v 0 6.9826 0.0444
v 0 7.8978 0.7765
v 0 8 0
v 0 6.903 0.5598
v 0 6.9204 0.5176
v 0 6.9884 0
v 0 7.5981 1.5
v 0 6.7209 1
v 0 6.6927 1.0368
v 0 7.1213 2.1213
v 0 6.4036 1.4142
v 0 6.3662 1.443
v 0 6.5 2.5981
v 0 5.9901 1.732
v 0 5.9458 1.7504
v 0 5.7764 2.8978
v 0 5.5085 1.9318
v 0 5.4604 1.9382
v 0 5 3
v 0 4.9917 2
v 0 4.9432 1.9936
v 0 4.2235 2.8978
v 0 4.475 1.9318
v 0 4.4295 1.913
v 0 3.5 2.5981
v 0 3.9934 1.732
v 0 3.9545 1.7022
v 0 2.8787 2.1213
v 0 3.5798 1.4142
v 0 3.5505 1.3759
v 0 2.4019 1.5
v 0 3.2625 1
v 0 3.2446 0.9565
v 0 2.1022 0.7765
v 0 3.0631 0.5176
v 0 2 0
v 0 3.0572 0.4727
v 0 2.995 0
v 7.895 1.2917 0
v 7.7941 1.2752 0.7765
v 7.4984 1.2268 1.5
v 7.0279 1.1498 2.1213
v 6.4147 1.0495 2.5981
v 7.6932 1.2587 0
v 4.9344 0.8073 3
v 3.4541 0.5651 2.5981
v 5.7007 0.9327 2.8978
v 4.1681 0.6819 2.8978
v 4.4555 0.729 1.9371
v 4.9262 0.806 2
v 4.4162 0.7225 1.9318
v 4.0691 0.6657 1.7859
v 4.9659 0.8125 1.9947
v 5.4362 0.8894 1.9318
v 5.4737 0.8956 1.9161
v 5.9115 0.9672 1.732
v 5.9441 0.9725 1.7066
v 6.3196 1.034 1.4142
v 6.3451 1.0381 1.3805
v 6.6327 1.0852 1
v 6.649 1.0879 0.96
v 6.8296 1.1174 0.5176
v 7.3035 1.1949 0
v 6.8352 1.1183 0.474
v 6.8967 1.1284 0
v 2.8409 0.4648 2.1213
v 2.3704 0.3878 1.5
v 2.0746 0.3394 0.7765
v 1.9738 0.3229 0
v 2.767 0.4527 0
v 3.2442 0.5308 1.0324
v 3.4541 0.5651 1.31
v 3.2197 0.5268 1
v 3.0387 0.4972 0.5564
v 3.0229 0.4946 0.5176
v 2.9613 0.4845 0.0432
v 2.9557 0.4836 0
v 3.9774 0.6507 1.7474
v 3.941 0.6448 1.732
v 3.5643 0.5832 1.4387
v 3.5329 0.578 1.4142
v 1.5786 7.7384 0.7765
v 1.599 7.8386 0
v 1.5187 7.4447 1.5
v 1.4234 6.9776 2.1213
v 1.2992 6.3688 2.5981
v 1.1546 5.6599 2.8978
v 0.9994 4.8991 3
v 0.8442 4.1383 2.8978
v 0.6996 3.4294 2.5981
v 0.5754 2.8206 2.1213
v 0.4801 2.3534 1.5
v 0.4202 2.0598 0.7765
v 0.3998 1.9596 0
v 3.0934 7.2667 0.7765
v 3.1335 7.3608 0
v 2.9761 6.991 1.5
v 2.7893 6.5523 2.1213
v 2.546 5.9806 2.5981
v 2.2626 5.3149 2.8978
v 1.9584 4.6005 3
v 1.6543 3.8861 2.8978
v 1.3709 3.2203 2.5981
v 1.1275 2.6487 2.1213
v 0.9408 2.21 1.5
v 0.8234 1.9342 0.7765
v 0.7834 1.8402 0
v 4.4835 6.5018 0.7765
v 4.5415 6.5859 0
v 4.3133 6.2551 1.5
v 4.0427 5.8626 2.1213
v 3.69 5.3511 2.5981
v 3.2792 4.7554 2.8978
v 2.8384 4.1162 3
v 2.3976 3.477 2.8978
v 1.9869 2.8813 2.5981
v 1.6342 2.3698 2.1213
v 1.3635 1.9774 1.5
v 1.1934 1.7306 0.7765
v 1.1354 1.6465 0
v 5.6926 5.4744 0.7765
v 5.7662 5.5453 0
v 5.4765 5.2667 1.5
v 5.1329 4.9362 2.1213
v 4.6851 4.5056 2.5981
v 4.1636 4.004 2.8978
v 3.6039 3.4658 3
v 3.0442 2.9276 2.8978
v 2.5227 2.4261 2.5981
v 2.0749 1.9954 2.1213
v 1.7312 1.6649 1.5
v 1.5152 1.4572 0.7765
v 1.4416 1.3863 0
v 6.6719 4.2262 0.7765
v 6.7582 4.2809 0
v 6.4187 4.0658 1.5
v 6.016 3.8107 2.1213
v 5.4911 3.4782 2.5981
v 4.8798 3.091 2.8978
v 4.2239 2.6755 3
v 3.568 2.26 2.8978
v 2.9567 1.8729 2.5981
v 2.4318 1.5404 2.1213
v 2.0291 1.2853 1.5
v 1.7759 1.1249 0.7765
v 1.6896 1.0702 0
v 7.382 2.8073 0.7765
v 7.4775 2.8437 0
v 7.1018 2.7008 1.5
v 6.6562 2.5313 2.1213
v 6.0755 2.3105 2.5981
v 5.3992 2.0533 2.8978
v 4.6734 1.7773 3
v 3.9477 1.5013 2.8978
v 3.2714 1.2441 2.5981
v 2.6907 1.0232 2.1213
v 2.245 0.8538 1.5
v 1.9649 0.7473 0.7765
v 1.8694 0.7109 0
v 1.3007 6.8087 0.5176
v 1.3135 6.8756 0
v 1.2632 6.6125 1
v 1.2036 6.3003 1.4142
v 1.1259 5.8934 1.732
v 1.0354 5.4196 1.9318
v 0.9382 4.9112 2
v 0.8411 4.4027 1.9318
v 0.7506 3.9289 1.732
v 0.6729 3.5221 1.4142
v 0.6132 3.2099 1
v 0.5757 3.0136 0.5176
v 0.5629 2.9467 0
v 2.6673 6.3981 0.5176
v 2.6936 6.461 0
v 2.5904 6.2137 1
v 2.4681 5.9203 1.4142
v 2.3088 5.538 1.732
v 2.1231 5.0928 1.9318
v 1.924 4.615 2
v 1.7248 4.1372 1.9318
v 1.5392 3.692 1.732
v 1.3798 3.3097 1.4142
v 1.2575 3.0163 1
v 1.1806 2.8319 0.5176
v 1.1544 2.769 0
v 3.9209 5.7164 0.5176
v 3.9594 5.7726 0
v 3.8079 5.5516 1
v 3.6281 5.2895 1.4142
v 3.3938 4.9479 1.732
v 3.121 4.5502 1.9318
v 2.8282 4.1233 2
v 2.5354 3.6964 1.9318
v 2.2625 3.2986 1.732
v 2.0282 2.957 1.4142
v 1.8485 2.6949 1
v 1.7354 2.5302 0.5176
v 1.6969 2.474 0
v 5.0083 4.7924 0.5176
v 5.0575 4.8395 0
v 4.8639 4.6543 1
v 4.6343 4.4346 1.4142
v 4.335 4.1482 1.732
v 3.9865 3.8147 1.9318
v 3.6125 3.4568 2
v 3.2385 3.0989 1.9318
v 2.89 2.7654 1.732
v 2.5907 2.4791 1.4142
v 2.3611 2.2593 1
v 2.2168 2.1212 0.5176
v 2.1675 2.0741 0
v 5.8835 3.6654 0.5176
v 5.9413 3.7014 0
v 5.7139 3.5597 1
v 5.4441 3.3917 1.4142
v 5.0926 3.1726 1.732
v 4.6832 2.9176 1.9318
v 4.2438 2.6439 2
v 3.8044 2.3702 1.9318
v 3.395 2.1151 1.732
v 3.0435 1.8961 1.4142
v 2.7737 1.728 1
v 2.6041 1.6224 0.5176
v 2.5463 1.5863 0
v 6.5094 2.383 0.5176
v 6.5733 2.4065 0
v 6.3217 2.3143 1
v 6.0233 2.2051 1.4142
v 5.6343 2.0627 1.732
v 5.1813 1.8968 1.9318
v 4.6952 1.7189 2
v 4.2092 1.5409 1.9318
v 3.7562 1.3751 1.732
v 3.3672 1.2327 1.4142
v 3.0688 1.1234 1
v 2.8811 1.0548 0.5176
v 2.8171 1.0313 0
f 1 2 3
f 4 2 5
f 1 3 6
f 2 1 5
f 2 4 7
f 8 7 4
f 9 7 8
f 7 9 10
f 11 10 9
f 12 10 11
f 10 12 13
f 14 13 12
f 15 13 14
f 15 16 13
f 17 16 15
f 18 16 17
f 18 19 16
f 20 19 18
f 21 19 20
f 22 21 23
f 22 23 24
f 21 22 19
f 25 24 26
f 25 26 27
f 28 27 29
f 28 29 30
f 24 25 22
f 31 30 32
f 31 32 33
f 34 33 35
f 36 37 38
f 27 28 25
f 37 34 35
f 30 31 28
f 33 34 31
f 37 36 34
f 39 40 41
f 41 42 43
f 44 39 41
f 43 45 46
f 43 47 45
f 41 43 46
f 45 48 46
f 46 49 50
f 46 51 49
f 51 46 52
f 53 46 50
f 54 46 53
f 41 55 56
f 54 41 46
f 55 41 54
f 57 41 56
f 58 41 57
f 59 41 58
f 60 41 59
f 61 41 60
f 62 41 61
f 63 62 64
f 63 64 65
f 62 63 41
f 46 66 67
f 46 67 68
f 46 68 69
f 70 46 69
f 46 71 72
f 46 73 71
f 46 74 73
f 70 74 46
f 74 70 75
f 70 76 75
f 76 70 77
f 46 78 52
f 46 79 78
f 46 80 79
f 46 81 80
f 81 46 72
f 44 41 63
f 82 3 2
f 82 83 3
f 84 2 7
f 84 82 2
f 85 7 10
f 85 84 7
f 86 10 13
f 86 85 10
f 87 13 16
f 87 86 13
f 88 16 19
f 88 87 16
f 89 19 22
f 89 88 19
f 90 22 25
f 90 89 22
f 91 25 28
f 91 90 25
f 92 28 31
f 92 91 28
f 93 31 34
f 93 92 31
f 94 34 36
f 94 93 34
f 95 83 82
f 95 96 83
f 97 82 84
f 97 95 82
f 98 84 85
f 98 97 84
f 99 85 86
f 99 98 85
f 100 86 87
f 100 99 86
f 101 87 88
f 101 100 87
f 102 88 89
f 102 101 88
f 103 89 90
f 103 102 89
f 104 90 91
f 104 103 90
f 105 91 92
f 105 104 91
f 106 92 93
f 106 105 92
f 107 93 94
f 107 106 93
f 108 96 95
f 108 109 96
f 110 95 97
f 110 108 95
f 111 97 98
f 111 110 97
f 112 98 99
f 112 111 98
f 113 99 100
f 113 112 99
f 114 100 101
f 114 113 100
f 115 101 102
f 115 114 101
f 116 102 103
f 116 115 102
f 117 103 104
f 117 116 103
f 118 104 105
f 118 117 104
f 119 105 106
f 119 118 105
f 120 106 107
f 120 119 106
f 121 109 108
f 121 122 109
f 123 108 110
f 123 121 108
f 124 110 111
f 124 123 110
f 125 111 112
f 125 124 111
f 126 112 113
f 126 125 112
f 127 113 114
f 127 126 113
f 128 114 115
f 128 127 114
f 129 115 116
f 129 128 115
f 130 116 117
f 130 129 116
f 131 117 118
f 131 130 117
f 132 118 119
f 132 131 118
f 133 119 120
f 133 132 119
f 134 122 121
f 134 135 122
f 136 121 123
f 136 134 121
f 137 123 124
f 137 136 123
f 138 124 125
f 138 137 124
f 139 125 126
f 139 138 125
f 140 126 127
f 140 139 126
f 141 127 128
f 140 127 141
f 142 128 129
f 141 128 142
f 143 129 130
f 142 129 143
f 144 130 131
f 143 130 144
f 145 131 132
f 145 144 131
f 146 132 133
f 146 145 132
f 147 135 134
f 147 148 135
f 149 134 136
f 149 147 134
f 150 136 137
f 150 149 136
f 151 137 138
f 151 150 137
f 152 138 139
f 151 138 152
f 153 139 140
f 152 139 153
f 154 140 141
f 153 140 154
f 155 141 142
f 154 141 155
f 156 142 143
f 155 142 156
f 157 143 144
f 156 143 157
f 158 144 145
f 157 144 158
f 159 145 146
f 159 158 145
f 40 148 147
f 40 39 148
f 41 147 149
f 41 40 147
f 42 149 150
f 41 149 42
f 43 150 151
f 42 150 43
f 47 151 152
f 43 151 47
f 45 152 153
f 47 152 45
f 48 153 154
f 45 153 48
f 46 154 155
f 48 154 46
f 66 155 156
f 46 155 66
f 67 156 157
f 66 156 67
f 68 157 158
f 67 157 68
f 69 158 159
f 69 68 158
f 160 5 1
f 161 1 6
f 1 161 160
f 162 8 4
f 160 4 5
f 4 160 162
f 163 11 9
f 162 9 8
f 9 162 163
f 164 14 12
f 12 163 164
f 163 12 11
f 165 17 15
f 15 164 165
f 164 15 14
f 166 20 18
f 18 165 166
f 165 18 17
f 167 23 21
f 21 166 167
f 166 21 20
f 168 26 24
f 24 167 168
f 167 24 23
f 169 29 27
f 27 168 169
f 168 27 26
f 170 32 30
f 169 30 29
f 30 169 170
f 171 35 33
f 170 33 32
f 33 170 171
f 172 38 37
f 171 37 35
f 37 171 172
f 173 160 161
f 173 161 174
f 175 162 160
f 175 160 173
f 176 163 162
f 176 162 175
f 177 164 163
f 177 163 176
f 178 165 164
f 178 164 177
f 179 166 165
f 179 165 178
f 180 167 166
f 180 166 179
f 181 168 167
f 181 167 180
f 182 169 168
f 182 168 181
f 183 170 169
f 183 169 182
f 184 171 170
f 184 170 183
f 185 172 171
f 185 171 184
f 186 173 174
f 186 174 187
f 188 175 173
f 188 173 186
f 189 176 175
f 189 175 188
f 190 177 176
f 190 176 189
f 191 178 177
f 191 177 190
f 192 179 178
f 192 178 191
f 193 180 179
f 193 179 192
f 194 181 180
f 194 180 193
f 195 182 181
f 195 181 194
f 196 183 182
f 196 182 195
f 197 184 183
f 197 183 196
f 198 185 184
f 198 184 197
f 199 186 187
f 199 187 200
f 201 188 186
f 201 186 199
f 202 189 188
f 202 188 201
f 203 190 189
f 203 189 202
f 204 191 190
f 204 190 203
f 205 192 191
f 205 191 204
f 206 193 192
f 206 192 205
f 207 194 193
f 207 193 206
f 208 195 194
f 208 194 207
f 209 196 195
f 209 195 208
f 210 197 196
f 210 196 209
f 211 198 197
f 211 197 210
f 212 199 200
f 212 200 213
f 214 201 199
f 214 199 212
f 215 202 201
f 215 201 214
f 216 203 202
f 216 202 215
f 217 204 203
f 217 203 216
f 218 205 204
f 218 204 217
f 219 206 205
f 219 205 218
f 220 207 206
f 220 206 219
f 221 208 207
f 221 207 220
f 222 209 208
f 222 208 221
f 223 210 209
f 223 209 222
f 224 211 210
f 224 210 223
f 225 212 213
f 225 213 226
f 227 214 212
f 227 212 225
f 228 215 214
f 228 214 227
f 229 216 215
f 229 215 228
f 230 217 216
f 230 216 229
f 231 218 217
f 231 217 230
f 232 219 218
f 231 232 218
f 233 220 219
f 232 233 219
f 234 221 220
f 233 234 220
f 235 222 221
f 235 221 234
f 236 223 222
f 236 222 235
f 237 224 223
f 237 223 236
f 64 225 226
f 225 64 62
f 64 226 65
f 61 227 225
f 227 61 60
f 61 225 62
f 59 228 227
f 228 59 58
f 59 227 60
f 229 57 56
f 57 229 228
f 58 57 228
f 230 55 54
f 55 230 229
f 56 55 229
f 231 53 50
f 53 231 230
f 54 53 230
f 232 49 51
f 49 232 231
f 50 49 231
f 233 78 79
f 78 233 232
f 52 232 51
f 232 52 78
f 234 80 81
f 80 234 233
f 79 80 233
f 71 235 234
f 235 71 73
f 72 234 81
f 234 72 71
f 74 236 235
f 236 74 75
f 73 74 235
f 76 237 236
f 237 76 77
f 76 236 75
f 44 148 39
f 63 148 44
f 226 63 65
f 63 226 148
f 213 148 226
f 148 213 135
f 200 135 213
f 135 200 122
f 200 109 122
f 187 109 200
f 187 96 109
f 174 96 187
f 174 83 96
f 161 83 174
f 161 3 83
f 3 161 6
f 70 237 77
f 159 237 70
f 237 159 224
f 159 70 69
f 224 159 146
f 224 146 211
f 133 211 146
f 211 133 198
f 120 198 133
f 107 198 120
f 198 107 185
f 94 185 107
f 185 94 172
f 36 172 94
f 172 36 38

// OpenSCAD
// file: ../build_environments.scad
// build_environments.scad: modules to build level sections
//

module pool(diameter=10.0, wall_height=2.0, step_width=3.0, connections=[])
{
    difference() {
        union() {
        difference() {
            cylinder(h=0.5,r1=diameter+step_width,r2=diameter+step_width,$fn=48);
            translate([0,0,-0.1])
                cylinder(h=0.7,r1=diameter,r2=diameter,$fn=48);
        }
        difference() {
            cylinder(h=wall_height,r1=diameter+step_width+1.0,r2=diameter+step_width+1.0,$fn=48);
            translate([0,0,-0.1])
                cylinder(h=wall_height+0.2,r1=diameter+step_width,r2=diameter+step_width,$fn=48);
        }
        }
    
        for (c = connections)
        {
            rotate([0,90,0]) {
                angle = atan2(c[1],c[0]);
                rotate([-angle,0,0]) {
                    cylinder(h=diameter+5.0,r1=c[2],r2=c[2],$fn=48);
                }
            }
        }
    }
}

module straight(length=10.0, width=2.0, dy1=0.0, dy2=0.0, dz=0.0)
{
    dims = [0, 0, 0, 0, 0, (dz/length)];
    matrix = [
        [ 1, dims[0], dims[1], 0 ],
        [ dims[2], 1, dims[4], 0 ],
        [ dims[5], dims[3], 1, 0 ],
        [ 0, 0, 0, 1 ]
    ];
    multmatrix(matrix)
    difference() {
        translate([dy1,0,0])
        union() {
            rotate([0,90,0]) {
                difference() {
                    cylinder(h=(length-dy1-dy2),r1=width+1.0,r2=width+1.0,$fn=24);
                    translate([0,0,-0.1])
                        cylinder(h=(length-dy1-dy2+0.2),r1=width,r2=width,$fn=24);
                }
                difference() {
                    cylinder(h=1.0,r1=width+2.0,r2=width+2.0,$fn=24);
                    translate([0,0,-0.1])
                        cylinder(h=1.2,r1=width,r2=width,$fn=24);
                }
                translate([0,0,(length-dy1-dy2)-1.0]) {
                    difference() {
                        cylinder(h=1.0,r1=width+2.0,r2=width+2.0,$fn=24);
                        translate([0,0,-0.1])
                            cylinder(h=1.2,r1=width,r2=width,$fn=24);
                    }
                }
            }
        }
        translate([0,0,-(2*width+4.0)/2])
            cube([3*length,3*length,2*width+4.0],center=true);
    }
}

module curve(p0=[0,0], center=[0,0], dir=1, angle=0.0, width=2.0)
{
    radius = sqrt((p0[0]-center[0])*(p0[0]-center[0]) + (p0[1]-center[1])*(p0[1]-center[1]));
    if (dir == 0) {
        difference() {
            rotate([0,0,-90])
            difference() {
                rotate_extrude(angle = angle, convexity = 10, $fn=32)
                    translate([radius, 0, 0])
                        circle(r = width+1.0,$fn=24);
                rotate([0,0,-1.0])
                    rotate_extrude(angle = angle+2.0, convexity = 10, $fn=32)
                        translate([radius, 0, 0])
                            circle(r = width,$fn=24);
            }
            translate([0,0,-(2*width+4.0)/2])
                cube([5*radius,5*radius,2*width+4.0],center=true);
        }
    }
    else {
        difference() {
            rotate([0,0,90])
            difference() {
                rotate_extrude(angle = -angle, convexity = 10, $fn=32)
                    translate([radius, 0, 0])
                        circle(r = width+1.0,$fn=24);
                rotate([0,0,1.0])
                    rotate_extrude(angle = -angle-2.0, convexity = 10, $fn=32)
                        translate([radius, 0, 0])
                            circle(r = width,$fn=24);
            }
            translate([0,0,-(2*width+4.0)/2])
                cube([5*radius,5*radius,2*width+4.0],center=true);
        }
    }

}

// test pool
//pool(diameter=12.0000, wall_height=3.0000, step_width=3.0000, connections=[[0.0000,-26.0000,2.0000], [23.6074,0.0000,2.0000]]);

// test straight, slope
//straight(length=26.0000, width=2.0000, dy1=11.8322, dy2=6.7082, dz=0.0000);
//straight(length=29.1549, width=12.0000, dy1=0.0000, dy2=0.0000, dz=-15.0000);

// test curve
//curve(p0=[23.6074, 0.0000], center=[23.6074, 5.0000], dir=0, angle=60.1011, width=2.0000);
//curve(p0=[33.6426, 12.4219], center=[37.9771, 9.9295], dir=1, angle=120.4627, width=2.0000);
// main file
use <../build_environments.scad>;
curve(p0=[-84.2833, 51.9822], center=[-83.6738, 56.9449], dir=1, angle=80.7081, width=2.0000);
